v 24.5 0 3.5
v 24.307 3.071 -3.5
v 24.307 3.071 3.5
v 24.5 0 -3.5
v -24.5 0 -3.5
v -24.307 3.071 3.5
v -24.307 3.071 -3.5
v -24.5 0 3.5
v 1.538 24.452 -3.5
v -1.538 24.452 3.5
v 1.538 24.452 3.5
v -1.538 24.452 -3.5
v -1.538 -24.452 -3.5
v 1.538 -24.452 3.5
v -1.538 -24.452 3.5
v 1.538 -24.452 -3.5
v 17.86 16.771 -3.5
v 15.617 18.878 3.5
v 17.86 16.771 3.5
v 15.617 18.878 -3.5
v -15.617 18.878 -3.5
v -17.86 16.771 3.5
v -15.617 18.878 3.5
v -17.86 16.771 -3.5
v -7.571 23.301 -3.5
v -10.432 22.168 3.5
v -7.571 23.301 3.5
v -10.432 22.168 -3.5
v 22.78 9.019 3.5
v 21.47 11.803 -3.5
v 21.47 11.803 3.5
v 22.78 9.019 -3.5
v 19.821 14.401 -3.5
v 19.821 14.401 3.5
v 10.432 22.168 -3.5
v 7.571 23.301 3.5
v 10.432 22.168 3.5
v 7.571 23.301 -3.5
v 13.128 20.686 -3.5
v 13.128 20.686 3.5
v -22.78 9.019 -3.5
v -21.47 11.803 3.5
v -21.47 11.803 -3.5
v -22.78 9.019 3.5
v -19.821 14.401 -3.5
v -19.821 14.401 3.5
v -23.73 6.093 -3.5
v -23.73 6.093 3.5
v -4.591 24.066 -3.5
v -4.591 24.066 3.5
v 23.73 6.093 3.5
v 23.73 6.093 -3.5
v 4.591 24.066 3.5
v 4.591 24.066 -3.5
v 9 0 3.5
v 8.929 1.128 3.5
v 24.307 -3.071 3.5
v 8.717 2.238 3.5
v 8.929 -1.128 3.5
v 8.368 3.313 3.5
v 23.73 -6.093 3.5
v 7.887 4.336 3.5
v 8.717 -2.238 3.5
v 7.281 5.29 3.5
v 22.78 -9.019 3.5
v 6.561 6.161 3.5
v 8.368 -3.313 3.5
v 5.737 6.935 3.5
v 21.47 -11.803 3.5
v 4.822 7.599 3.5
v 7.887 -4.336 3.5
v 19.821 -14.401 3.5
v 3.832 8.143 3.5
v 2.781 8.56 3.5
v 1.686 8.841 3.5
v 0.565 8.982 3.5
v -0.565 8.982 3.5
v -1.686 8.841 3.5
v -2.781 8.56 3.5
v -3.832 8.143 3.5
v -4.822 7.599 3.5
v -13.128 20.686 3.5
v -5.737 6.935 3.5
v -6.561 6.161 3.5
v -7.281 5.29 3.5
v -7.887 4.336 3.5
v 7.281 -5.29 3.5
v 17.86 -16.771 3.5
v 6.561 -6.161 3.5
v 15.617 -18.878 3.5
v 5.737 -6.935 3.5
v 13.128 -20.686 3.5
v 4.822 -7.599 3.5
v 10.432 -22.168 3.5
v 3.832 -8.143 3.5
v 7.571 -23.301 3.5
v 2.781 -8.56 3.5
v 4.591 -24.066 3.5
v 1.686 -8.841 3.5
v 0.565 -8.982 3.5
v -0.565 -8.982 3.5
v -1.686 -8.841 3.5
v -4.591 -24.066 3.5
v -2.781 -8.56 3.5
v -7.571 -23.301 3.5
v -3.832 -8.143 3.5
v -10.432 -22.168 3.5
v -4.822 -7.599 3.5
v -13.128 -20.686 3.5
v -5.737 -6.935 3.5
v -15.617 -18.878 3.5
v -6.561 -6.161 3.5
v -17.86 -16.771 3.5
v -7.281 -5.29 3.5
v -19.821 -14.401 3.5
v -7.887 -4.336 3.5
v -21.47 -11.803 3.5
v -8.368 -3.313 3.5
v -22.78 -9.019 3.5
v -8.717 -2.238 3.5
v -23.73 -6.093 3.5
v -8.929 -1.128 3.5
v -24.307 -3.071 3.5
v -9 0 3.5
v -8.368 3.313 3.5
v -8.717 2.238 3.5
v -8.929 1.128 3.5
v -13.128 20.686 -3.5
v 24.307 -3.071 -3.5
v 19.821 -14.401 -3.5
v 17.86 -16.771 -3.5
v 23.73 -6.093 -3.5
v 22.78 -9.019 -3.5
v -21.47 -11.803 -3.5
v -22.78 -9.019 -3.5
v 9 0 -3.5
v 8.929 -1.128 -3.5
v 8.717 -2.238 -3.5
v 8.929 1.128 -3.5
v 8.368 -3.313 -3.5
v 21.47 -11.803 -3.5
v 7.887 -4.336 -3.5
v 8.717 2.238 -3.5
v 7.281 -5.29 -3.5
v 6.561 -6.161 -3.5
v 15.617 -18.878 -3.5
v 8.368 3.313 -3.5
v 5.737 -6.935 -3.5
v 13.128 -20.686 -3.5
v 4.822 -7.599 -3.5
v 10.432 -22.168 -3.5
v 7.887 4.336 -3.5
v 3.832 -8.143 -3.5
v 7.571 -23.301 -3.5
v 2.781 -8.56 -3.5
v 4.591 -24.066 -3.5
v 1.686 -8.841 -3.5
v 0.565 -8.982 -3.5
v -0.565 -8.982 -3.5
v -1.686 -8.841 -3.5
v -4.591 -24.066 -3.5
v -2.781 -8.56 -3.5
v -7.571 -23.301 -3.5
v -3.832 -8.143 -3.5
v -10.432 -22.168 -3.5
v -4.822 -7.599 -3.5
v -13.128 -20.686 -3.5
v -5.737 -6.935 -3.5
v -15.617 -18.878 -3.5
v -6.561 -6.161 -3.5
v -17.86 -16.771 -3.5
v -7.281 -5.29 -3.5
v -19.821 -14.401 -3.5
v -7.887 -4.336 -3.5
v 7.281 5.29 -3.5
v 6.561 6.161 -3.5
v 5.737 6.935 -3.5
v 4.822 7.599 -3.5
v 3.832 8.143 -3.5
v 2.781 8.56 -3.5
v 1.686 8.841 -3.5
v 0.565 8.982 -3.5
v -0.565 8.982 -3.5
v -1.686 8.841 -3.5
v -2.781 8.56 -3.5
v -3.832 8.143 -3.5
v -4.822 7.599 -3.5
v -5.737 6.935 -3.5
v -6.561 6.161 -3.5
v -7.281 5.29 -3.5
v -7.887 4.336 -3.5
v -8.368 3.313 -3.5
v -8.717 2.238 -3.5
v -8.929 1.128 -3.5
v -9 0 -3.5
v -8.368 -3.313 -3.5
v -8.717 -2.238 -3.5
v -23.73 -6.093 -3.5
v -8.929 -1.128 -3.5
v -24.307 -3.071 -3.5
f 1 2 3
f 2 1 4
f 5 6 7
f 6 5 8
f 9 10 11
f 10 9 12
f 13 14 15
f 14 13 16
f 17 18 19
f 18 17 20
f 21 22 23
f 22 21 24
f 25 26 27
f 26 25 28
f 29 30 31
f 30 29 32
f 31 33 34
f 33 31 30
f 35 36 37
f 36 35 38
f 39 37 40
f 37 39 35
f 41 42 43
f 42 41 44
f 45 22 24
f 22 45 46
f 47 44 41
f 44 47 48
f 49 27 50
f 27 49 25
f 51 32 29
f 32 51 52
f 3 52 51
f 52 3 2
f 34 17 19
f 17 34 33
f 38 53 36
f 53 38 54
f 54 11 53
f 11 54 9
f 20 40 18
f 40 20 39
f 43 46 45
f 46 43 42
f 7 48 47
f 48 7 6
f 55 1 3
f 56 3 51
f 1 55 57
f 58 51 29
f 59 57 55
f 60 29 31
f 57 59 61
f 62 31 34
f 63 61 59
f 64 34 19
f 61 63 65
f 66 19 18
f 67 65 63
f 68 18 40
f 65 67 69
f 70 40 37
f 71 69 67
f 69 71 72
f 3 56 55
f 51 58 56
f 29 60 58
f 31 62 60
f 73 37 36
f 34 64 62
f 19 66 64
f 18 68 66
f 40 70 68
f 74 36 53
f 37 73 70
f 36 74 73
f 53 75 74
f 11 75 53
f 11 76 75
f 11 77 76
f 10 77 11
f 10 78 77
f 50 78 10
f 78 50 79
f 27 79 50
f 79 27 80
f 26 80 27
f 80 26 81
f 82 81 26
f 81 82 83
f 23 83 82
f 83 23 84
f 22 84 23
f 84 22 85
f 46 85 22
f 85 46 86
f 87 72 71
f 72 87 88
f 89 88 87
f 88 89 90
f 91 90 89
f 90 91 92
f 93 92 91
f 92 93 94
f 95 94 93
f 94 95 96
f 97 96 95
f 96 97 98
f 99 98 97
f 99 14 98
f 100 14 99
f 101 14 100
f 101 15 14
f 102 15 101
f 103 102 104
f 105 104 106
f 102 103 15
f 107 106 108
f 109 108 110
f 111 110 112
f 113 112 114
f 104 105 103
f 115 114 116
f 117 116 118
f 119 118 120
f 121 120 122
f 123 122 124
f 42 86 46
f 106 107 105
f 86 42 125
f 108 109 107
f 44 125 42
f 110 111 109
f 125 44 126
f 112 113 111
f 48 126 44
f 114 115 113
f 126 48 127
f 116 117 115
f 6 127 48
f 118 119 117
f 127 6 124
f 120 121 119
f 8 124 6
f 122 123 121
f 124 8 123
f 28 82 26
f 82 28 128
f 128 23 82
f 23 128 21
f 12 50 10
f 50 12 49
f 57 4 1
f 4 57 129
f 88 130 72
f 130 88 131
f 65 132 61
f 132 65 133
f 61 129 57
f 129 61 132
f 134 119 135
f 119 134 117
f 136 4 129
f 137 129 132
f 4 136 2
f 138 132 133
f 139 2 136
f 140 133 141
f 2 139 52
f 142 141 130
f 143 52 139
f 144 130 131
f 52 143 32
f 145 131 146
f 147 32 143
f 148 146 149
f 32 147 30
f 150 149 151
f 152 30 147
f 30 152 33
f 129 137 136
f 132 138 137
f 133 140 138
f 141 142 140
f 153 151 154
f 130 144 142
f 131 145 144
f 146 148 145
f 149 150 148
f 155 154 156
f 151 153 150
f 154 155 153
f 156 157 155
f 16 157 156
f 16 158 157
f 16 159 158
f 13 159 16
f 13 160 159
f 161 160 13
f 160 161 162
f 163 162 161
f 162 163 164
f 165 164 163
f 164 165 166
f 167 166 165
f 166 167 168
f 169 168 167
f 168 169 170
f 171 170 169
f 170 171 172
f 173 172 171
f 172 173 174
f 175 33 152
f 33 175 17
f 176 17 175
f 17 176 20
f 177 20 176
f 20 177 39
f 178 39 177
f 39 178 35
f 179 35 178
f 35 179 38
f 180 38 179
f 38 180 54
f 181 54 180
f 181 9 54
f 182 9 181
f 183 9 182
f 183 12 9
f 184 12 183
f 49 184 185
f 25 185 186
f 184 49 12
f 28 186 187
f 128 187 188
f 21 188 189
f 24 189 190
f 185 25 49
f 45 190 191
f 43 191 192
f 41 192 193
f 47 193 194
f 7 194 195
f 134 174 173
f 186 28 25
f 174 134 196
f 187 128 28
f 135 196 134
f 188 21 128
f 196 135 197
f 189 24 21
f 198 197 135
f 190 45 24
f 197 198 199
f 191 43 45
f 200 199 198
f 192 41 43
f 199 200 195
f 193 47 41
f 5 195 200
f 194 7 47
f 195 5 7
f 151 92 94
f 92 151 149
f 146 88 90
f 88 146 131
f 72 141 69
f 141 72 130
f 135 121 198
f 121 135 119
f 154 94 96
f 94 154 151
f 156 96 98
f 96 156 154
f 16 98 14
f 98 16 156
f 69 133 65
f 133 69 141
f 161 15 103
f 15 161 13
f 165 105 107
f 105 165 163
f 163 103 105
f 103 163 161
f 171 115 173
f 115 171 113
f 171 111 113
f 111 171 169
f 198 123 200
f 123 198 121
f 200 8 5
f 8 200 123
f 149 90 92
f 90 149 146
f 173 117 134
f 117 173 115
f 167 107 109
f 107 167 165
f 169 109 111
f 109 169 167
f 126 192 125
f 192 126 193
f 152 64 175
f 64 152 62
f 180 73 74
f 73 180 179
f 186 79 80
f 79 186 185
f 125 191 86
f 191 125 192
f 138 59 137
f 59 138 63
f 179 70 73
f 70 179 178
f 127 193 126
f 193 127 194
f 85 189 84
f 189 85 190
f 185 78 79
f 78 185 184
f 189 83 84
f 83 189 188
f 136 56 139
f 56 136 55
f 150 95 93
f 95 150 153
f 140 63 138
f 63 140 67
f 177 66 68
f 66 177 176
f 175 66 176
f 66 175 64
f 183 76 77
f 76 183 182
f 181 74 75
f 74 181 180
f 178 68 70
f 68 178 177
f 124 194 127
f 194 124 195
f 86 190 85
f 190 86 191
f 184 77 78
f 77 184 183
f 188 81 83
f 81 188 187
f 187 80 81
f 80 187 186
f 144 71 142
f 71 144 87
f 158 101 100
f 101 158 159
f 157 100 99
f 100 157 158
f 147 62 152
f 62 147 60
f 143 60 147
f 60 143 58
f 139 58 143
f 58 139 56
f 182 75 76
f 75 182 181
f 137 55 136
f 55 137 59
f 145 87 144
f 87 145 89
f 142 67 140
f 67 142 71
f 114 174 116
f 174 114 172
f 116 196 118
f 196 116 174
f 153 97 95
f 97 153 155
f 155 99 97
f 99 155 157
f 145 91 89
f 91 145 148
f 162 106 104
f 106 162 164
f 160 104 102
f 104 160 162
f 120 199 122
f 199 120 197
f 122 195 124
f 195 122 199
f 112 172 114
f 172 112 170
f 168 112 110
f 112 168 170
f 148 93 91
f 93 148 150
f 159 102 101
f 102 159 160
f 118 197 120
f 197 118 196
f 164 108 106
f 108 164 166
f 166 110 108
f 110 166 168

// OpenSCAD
$fn = 50;


difference() {
	union() {
		translate(v = [0, 0, -3.5000000000]) {
			cylinder(h = 7, r = 24.5000000000);
		}
	}
	union() {
		translate(v = [0, 0, -100.0000000000]) {
			cylinder(h = 200, r = 9);
		}
	}
}
